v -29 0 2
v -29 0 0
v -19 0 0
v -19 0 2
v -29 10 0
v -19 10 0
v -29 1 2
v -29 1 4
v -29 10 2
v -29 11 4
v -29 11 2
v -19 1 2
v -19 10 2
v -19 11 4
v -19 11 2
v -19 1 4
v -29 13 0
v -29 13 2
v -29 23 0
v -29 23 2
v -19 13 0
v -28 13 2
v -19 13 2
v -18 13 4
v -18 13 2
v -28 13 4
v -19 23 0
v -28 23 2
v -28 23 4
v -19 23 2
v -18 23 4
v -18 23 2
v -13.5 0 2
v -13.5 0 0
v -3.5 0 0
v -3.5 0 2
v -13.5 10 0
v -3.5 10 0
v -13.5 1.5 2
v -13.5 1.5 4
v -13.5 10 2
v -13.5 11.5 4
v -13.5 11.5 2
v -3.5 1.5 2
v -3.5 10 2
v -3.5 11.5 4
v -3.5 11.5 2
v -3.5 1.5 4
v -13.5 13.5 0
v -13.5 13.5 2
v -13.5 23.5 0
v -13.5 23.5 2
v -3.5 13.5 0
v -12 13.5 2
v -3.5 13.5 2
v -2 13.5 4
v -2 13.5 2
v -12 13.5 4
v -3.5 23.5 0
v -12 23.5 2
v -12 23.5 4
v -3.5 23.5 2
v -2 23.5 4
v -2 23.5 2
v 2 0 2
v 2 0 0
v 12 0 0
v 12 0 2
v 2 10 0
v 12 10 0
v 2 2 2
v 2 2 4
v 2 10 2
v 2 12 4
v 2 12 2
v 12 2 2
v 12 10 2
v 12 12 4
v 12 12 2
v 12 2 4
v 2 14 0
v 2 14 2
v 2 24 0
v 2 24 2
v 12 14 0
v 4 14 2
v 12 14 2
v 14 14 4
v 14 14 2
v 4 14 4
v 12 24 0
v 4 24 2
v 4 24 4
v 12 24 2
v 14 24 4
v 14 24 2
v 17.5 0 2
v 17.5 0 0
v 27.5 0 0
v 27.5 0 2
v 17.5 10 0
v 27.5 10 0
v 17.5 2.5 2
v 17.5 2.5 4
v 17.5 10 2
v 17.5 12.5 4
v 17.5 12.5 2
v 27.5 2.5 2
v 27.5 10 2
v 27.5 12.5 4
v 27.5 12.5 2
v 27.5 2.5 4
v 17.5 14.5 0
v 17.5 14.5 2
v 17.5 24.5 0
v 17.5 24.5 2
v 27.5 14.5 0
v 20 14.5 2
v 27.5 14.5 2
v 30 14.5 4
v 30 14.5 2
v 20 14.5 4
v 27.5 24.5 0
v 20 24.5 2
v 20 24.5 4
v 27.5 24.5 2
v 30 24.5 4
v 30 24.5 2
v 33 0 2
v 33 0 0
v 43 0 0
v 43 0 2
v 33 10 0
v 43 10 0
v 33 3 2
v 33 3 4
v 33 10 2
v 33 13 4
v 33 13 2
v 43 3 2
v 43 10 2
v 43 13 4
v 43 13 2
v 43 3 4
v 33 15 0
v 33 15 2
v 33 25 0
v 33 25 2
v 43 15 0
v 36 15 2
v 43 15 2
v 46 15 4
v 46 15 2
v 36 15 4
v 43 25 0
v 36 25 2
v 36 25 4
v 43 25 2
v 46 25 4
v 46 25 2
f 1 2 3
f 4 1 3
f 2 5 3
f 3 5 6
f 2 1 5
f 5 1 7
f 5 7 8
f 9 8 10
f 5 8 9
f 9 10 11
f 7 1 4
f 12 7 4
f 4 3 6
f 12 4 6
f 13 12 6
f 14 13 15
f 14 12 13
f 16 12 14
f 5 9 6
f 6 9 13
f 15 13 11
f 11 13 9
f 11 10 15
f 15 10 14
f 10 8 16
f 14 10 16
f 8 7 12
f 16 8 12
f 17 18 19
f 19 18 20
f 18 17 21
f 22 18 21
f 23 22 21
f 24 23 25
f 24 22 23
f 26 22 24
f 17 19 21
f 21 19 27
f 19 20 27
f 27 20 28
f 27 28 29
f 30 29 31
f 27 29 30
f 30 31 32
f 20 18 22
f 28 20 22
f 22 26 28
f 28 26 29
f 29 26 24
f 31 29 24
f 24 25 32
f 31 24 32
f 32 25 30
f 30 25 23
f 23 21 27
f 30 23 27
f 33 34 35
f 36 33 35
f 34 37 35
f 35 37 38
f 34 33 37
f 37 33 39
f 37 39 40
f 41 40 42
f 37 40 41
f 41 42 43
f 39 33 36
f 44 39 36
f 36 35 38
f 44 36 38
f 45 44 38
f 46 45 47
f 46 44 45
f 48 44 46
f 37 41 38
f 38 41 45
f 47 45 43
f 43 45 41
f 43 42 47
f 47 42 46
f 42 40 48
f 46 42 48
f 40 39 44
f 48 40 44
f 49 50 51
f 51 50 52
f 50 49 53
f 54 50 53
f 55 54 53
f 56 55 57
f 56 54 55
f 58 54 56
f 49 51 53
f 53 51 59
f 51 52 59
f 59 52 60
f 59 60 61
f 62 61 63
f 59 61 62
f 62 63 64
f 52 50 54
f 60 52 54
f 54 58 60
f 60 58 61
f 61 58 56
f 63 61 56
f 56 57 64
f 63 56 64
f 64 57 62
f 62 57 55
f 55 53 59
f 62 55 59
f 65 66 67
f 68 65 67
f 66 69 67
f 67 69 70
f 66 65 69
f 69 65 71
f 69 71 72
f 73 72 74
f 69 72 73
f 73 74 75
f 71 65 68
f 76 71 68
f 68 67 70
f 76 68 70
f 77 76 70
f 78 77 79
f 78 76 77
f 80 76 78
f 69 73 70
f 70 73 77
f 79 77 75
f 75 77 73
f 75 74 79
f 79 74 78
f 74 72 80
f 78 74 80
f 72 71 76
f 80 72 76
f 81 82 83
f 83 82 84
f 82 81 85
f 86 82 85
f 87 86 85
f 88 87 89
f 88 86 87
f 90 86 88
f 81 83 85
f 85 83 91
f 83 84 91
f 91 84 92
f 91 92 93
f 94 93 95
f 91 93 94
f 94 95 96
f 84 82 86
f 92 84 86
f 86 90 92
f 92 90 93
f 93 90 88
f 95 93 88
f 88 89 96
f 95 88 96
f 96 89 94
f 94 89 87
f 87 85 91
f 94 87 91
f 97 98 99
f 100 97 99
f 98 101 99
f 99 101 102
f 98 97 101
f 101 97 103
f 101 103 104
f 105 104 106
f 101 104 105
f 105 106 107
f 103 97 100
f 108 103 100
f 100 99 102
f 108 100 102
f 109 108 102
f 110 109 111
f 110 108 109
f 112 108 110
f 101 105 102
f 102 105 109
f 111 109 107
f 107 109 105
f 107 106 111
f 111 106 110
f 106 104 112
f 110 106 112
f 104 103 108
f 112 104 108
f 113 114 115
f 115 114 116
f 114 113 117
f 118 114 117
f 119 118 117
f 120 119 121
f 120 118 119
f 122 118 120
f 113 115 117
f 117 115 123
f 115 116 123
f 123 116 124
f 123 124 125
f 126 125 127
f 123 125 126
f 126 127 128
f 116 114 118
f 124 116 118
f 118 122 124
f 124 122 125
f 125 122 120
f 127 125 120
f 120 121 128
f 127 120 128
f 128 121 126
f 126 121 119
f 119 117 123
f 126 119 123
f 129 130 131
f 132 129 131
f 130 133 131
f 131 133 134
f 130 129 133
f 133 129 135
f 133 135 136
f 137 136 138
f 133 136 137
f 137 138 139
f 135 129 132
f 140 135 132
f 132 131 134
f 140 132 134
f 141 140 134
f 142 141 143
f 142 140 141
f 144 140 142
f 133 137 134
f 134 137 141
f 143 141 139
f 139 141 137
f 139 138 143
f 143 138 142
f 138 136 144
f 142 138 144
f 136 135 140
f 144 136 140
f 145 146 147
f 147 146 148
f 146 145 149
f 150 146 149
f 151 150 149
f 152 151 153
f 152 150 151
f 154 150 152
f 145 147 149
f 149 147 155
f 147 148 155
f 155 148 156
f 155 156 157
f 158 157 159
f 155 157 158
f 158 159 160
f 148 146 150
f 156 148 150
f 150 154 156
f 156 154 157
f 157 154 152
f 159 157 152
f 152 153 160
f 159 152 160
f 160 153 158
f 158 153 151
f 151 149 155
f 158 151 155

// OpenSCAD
module roofing_test(bottom_dims, top_dims, top_offset) {
	cube(bottom_dims);
	translate([top_offset,0,bottom_dims[2]])
	cube(top_dims);
}

module roofing_test_bothways(bottom_dims, top_dims, top_offset) {
	rotate([0,0,90])
	roofing_test(bottom_dims, top_dims, top_offset);
	translate([-bottom_dims[0],bottom_dims[1]+top_offset+2,0])
	roofing_test(bottom_dims, top_dims, top_offset);
}

bottom_dims = [10,10,2];
top_dims = [10,10,2];
offset_start = 1.0;
offset_step = 0.5;
spacing = 15;

translate([-30,0,0])
for(i=[0:4]){
	translate([bottom_dims[0]+offset_start+i*offset_step+i*spacing,0,0])
	roofing_test_bothways(bottom_dims,top_dims,offset_start+i*offset_step);
}
